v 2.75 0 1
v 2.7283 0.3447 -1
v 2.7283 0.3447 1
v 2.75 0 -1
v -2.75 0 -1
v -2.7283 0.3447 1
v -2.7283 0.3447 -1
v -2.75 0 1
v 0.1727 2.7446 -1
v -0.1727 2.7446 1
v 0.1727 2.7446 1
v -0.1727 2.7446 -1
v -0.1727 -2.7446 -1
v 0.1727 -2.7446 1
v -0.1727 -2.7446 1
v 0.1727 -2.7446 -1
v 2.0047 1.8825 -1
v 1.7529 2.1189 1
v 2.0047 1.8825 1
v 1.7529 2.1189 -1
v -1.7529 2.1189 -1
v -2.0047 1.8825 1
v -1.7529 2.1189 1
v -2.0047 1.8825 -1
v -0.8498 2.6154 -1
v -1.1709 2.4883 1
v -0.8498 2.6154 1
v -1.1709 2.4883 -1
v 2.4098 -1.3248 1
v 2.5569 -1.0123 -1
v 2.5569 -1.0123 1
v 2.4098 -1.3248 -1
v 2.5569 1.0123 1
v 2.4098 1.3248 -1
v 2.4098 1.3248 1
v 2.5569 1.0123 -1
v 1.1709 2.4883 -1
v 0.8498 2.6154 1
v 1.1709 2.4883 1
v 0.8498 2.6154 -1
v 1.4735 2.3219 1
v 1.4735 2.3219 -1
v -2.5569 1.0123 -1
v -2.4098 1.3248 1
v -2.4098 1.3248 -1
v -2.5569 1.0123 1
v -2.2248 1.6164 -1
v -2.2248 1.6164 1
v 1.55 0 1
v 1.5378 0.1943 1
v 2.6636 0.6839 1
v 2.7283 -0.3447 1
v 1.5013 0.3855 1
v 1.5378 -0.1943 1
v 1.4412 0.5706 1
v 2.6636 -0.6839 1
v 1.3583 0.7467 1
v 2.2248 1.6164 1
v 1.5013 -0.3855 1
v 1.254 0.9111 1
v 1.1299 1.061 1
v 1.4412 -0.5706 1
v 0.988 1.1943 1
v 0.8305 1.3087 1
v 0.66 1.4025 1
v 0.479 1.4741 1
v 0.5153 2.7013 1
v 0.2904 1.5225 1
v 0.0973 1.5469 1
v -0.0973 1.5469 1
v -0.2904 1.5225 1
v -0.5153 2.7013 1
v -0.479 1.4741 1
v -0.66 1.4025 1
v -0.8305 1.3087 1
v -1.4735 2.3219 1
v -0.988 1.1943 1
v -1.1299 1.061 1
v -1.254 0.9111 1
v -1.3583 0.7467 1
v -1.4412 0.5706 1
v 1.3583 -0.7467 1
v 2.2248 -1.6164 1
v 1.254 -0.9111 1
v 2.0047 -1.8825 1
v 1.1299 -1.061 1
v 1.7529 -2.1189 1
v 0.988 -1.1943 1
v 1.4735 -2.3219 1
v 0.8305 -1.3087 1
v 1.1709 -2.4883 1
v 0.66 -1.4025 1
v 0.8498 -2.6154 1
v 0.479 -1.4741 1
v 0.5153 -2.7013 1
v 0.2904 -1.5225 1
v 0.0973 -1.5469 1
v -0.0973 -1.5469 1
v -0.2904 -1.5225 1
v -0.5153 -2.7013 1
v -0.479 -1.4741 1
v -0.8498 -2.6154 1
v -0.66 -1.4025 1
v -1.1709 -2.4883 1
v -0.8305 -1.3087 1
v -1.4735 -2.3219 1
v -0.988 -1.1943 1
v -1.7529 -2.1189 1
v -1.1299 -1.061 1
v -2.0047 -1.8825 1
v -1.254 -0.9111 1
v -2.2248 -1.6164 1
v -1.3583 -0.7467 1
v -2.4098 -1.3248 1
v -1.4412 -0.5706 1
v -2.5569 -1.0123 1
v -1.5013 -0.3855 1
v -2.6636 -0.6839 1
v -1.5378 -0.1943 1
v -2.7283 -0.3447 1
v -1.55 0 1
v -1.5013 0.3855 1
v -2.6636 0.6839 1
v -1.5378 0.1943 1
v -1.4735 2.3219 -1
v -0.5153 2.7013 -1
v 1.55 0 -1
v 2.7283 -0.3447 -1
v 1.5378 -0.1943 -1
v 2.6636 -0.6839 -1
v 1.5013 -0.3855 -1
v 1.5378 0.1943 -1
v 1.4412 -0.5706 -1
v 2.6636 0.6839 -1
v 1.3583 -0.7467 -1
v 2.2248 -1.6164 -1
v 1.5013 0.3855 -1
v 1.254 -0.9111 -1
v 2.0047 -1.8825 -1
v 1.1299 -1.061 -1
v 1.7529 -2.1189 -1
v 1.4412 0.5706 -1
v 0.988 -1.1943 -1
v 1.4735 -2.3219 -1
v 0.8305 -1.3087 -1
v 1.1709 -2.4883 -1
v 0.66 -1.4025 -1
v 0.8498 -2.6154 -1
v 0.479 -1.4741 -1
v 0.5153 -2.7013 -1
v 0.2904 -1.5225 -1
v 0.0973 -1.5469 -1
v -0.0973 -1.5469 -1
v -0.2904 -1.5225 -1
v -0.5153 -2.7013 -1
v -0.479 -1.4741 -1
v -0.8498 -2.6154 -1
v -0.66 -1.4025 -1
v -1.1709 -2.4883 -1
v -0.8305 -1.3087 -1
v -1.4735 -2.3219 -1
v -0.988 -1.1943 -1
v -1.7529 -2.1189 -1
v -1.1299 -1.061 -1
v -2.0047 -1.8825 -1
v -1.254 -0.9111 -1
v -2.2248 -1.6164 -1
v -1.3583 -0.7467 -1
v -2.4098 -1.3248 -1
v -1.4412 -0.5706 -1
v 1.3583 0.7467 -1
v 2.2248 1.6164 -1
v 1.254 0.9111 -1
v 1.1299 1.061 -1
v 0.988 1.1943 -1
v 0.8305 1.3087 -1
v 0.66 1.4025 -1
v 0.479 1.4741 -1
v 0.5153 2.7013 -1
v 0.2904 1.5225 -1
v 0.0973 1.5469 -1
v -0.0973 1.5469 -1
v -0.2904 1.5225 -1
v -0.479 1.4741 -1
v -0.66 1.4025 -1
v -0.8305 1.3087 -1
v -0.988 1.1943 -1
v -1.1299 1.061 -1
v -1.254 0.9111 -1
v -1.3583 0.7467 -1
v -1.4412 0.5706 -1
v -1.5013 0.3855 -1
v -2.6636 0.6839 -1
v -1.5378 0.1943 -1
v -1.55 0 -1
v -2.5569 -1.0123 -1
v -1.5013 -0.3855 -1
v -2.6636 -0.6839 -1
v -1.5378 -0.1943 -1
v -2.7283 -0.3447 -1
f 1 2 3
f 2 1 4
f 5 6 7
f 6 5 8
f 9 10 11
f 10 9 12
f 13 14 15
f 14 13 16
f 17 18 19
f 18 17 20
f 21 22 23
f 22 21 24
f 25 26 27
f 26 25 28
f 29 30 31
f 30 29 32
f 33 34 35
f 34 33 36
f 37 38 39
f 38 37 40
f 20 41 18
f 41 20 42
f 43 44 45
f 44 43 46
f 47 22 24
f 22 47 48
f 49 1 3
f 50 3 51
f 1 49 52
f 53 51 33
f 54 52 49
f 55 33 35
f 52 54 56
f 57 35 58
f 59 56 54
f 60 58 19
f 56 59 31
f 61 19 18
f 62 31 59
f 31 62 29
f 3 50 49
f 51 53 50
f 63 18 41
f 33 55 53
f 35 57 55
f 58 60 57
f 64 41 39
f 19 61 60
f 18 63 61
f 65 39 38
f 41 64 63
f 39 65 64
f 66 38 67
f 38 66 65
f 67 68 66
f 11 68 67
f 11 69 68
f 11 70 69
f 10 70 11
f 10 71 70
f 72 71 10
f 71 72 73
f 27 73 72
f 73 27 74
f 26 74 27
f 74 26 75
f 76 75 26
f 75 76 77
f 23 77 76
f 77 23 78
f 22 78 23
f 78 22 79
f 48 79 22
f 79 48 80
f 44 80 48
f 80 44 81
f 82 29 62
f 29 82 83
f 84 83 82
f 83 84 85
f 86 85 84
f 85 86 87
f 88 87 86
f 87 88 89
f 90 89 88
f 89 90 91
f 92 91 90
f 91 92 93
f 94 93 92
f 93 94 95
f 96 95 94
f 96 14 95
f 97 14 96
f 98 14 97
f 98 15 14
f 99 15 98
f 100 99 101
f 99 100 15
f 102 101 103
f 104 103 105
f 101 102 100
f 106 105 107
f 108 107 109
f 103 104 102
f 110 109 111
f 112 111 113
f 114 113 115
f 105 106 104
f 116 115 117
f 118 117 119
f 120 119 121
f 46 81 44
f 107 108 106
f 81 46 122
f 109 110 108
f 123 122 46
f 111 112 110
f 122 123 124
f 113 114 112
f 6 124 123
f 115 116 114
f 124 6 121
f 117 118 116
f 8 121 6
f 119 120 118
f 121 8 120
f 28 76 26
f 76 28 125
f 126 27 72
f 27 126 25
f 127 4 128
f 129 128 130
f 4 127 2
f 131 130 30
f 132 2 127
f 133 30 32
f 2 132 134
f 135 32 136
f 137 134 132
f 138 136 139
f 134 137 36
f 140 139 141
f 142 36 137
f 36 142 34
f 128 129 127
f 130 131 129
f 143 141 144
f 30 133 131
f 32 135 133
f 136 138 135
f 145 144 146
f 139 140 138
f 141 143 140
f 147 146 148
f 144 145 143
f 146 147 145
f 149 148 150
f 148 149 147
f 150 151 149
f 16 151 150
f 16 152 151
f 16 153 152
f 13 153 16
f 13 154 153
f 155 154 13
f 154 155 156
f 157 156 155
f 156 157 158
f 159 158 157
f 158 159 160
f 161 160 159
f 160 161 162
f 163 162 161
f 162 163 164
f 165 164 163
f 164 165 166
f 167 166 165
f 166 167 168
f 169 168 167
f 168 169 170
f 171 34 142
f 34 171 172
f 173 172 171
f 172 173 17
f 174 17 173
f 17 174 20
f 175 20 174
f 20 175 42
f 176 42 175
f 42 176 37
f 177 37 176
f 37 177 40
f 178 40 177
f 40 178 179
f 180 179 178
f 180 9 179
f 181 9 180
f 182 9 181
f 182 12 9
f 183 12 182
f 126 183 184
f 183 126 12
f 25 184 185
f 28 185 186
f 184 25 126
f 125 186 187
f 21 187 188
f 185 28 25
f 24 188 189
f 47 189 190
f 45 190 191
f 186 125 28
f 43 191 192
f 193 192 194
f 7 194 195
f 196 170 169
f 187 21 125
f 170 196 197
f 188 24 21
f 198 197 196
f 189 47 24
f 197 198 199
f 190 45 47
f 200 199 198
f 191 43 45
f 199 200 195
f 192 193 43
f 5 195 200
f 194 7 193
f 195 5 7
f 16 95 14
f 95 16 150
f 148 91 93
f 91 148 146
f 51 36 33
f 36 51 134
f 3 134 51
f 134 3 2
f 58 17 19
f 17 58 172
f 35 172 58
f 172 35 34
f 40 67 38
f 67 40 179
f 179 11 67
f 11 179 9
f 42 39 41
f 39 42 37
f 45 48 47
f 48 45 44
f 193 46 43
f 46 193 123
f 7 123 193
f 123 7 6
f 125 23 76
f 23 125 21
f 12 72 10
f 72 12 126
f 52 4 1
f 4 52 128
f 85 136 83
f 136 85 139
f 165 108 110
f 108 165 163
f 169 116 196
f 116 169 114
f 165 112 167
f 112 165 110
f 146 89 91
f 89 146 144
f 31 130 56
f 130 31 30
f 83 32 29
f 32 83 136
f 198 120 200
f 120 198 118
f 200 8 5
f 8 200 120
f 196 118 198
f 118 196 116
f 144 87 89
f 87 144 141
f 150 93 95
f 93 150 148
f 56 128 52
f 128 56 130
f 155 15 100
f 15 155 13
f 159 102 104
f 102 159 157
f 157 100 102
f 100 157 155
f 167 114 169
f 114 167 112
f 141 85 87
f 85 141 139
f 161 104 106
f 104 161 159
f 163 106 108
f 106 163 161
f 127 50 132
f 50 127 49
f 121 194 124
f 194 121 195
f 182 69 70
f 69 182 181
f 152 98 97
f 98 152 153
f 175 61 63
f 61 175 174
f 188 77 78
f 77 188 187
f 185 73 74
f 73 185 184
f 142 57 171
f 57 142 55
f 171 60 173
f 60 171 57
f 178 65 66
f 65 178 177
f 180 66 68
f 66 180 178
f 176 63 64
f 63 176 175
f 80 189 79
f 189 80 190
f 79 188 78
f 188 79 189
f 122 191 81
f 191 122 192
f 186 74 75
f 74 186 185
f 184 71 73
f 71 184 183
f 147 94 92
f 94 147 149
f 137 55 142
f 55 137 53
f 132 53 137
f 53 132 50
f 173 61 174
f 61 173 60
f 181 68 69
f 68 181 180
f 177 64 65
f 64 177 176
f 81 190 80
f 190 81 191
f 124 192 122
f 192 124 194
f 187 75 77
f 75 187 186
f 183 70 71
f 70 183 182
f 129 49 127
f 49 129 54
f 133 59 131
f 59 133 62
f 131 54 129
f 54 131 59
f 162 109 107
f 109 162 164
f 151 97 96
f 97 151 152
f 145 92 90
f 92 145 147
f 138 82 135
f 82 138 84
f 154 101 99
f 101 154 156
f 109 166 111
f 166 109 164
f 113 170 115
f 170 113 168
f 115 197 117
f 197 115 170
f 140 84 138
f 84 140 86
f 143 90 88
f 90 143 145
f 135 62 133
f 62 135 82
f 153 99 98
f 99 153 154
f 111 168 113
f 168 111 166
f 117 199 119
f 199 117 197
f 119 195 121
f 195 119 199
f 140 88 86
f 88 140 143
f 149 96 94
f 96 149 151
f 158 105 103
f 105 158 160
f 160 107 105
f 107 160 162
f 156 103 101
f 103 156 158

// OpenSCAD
$fn = 50;


difference() {
	union() {
		translate(v = [0, 0, -1.0000000000]) {
			cylinder(h = 2, r = 2.7500000000);
		}
	}
	union() {
		translate(v = [0, 0, -100.0000000000]) {
			cylinder(h = 200, r = 1.5500000000);
		}
	}
}
